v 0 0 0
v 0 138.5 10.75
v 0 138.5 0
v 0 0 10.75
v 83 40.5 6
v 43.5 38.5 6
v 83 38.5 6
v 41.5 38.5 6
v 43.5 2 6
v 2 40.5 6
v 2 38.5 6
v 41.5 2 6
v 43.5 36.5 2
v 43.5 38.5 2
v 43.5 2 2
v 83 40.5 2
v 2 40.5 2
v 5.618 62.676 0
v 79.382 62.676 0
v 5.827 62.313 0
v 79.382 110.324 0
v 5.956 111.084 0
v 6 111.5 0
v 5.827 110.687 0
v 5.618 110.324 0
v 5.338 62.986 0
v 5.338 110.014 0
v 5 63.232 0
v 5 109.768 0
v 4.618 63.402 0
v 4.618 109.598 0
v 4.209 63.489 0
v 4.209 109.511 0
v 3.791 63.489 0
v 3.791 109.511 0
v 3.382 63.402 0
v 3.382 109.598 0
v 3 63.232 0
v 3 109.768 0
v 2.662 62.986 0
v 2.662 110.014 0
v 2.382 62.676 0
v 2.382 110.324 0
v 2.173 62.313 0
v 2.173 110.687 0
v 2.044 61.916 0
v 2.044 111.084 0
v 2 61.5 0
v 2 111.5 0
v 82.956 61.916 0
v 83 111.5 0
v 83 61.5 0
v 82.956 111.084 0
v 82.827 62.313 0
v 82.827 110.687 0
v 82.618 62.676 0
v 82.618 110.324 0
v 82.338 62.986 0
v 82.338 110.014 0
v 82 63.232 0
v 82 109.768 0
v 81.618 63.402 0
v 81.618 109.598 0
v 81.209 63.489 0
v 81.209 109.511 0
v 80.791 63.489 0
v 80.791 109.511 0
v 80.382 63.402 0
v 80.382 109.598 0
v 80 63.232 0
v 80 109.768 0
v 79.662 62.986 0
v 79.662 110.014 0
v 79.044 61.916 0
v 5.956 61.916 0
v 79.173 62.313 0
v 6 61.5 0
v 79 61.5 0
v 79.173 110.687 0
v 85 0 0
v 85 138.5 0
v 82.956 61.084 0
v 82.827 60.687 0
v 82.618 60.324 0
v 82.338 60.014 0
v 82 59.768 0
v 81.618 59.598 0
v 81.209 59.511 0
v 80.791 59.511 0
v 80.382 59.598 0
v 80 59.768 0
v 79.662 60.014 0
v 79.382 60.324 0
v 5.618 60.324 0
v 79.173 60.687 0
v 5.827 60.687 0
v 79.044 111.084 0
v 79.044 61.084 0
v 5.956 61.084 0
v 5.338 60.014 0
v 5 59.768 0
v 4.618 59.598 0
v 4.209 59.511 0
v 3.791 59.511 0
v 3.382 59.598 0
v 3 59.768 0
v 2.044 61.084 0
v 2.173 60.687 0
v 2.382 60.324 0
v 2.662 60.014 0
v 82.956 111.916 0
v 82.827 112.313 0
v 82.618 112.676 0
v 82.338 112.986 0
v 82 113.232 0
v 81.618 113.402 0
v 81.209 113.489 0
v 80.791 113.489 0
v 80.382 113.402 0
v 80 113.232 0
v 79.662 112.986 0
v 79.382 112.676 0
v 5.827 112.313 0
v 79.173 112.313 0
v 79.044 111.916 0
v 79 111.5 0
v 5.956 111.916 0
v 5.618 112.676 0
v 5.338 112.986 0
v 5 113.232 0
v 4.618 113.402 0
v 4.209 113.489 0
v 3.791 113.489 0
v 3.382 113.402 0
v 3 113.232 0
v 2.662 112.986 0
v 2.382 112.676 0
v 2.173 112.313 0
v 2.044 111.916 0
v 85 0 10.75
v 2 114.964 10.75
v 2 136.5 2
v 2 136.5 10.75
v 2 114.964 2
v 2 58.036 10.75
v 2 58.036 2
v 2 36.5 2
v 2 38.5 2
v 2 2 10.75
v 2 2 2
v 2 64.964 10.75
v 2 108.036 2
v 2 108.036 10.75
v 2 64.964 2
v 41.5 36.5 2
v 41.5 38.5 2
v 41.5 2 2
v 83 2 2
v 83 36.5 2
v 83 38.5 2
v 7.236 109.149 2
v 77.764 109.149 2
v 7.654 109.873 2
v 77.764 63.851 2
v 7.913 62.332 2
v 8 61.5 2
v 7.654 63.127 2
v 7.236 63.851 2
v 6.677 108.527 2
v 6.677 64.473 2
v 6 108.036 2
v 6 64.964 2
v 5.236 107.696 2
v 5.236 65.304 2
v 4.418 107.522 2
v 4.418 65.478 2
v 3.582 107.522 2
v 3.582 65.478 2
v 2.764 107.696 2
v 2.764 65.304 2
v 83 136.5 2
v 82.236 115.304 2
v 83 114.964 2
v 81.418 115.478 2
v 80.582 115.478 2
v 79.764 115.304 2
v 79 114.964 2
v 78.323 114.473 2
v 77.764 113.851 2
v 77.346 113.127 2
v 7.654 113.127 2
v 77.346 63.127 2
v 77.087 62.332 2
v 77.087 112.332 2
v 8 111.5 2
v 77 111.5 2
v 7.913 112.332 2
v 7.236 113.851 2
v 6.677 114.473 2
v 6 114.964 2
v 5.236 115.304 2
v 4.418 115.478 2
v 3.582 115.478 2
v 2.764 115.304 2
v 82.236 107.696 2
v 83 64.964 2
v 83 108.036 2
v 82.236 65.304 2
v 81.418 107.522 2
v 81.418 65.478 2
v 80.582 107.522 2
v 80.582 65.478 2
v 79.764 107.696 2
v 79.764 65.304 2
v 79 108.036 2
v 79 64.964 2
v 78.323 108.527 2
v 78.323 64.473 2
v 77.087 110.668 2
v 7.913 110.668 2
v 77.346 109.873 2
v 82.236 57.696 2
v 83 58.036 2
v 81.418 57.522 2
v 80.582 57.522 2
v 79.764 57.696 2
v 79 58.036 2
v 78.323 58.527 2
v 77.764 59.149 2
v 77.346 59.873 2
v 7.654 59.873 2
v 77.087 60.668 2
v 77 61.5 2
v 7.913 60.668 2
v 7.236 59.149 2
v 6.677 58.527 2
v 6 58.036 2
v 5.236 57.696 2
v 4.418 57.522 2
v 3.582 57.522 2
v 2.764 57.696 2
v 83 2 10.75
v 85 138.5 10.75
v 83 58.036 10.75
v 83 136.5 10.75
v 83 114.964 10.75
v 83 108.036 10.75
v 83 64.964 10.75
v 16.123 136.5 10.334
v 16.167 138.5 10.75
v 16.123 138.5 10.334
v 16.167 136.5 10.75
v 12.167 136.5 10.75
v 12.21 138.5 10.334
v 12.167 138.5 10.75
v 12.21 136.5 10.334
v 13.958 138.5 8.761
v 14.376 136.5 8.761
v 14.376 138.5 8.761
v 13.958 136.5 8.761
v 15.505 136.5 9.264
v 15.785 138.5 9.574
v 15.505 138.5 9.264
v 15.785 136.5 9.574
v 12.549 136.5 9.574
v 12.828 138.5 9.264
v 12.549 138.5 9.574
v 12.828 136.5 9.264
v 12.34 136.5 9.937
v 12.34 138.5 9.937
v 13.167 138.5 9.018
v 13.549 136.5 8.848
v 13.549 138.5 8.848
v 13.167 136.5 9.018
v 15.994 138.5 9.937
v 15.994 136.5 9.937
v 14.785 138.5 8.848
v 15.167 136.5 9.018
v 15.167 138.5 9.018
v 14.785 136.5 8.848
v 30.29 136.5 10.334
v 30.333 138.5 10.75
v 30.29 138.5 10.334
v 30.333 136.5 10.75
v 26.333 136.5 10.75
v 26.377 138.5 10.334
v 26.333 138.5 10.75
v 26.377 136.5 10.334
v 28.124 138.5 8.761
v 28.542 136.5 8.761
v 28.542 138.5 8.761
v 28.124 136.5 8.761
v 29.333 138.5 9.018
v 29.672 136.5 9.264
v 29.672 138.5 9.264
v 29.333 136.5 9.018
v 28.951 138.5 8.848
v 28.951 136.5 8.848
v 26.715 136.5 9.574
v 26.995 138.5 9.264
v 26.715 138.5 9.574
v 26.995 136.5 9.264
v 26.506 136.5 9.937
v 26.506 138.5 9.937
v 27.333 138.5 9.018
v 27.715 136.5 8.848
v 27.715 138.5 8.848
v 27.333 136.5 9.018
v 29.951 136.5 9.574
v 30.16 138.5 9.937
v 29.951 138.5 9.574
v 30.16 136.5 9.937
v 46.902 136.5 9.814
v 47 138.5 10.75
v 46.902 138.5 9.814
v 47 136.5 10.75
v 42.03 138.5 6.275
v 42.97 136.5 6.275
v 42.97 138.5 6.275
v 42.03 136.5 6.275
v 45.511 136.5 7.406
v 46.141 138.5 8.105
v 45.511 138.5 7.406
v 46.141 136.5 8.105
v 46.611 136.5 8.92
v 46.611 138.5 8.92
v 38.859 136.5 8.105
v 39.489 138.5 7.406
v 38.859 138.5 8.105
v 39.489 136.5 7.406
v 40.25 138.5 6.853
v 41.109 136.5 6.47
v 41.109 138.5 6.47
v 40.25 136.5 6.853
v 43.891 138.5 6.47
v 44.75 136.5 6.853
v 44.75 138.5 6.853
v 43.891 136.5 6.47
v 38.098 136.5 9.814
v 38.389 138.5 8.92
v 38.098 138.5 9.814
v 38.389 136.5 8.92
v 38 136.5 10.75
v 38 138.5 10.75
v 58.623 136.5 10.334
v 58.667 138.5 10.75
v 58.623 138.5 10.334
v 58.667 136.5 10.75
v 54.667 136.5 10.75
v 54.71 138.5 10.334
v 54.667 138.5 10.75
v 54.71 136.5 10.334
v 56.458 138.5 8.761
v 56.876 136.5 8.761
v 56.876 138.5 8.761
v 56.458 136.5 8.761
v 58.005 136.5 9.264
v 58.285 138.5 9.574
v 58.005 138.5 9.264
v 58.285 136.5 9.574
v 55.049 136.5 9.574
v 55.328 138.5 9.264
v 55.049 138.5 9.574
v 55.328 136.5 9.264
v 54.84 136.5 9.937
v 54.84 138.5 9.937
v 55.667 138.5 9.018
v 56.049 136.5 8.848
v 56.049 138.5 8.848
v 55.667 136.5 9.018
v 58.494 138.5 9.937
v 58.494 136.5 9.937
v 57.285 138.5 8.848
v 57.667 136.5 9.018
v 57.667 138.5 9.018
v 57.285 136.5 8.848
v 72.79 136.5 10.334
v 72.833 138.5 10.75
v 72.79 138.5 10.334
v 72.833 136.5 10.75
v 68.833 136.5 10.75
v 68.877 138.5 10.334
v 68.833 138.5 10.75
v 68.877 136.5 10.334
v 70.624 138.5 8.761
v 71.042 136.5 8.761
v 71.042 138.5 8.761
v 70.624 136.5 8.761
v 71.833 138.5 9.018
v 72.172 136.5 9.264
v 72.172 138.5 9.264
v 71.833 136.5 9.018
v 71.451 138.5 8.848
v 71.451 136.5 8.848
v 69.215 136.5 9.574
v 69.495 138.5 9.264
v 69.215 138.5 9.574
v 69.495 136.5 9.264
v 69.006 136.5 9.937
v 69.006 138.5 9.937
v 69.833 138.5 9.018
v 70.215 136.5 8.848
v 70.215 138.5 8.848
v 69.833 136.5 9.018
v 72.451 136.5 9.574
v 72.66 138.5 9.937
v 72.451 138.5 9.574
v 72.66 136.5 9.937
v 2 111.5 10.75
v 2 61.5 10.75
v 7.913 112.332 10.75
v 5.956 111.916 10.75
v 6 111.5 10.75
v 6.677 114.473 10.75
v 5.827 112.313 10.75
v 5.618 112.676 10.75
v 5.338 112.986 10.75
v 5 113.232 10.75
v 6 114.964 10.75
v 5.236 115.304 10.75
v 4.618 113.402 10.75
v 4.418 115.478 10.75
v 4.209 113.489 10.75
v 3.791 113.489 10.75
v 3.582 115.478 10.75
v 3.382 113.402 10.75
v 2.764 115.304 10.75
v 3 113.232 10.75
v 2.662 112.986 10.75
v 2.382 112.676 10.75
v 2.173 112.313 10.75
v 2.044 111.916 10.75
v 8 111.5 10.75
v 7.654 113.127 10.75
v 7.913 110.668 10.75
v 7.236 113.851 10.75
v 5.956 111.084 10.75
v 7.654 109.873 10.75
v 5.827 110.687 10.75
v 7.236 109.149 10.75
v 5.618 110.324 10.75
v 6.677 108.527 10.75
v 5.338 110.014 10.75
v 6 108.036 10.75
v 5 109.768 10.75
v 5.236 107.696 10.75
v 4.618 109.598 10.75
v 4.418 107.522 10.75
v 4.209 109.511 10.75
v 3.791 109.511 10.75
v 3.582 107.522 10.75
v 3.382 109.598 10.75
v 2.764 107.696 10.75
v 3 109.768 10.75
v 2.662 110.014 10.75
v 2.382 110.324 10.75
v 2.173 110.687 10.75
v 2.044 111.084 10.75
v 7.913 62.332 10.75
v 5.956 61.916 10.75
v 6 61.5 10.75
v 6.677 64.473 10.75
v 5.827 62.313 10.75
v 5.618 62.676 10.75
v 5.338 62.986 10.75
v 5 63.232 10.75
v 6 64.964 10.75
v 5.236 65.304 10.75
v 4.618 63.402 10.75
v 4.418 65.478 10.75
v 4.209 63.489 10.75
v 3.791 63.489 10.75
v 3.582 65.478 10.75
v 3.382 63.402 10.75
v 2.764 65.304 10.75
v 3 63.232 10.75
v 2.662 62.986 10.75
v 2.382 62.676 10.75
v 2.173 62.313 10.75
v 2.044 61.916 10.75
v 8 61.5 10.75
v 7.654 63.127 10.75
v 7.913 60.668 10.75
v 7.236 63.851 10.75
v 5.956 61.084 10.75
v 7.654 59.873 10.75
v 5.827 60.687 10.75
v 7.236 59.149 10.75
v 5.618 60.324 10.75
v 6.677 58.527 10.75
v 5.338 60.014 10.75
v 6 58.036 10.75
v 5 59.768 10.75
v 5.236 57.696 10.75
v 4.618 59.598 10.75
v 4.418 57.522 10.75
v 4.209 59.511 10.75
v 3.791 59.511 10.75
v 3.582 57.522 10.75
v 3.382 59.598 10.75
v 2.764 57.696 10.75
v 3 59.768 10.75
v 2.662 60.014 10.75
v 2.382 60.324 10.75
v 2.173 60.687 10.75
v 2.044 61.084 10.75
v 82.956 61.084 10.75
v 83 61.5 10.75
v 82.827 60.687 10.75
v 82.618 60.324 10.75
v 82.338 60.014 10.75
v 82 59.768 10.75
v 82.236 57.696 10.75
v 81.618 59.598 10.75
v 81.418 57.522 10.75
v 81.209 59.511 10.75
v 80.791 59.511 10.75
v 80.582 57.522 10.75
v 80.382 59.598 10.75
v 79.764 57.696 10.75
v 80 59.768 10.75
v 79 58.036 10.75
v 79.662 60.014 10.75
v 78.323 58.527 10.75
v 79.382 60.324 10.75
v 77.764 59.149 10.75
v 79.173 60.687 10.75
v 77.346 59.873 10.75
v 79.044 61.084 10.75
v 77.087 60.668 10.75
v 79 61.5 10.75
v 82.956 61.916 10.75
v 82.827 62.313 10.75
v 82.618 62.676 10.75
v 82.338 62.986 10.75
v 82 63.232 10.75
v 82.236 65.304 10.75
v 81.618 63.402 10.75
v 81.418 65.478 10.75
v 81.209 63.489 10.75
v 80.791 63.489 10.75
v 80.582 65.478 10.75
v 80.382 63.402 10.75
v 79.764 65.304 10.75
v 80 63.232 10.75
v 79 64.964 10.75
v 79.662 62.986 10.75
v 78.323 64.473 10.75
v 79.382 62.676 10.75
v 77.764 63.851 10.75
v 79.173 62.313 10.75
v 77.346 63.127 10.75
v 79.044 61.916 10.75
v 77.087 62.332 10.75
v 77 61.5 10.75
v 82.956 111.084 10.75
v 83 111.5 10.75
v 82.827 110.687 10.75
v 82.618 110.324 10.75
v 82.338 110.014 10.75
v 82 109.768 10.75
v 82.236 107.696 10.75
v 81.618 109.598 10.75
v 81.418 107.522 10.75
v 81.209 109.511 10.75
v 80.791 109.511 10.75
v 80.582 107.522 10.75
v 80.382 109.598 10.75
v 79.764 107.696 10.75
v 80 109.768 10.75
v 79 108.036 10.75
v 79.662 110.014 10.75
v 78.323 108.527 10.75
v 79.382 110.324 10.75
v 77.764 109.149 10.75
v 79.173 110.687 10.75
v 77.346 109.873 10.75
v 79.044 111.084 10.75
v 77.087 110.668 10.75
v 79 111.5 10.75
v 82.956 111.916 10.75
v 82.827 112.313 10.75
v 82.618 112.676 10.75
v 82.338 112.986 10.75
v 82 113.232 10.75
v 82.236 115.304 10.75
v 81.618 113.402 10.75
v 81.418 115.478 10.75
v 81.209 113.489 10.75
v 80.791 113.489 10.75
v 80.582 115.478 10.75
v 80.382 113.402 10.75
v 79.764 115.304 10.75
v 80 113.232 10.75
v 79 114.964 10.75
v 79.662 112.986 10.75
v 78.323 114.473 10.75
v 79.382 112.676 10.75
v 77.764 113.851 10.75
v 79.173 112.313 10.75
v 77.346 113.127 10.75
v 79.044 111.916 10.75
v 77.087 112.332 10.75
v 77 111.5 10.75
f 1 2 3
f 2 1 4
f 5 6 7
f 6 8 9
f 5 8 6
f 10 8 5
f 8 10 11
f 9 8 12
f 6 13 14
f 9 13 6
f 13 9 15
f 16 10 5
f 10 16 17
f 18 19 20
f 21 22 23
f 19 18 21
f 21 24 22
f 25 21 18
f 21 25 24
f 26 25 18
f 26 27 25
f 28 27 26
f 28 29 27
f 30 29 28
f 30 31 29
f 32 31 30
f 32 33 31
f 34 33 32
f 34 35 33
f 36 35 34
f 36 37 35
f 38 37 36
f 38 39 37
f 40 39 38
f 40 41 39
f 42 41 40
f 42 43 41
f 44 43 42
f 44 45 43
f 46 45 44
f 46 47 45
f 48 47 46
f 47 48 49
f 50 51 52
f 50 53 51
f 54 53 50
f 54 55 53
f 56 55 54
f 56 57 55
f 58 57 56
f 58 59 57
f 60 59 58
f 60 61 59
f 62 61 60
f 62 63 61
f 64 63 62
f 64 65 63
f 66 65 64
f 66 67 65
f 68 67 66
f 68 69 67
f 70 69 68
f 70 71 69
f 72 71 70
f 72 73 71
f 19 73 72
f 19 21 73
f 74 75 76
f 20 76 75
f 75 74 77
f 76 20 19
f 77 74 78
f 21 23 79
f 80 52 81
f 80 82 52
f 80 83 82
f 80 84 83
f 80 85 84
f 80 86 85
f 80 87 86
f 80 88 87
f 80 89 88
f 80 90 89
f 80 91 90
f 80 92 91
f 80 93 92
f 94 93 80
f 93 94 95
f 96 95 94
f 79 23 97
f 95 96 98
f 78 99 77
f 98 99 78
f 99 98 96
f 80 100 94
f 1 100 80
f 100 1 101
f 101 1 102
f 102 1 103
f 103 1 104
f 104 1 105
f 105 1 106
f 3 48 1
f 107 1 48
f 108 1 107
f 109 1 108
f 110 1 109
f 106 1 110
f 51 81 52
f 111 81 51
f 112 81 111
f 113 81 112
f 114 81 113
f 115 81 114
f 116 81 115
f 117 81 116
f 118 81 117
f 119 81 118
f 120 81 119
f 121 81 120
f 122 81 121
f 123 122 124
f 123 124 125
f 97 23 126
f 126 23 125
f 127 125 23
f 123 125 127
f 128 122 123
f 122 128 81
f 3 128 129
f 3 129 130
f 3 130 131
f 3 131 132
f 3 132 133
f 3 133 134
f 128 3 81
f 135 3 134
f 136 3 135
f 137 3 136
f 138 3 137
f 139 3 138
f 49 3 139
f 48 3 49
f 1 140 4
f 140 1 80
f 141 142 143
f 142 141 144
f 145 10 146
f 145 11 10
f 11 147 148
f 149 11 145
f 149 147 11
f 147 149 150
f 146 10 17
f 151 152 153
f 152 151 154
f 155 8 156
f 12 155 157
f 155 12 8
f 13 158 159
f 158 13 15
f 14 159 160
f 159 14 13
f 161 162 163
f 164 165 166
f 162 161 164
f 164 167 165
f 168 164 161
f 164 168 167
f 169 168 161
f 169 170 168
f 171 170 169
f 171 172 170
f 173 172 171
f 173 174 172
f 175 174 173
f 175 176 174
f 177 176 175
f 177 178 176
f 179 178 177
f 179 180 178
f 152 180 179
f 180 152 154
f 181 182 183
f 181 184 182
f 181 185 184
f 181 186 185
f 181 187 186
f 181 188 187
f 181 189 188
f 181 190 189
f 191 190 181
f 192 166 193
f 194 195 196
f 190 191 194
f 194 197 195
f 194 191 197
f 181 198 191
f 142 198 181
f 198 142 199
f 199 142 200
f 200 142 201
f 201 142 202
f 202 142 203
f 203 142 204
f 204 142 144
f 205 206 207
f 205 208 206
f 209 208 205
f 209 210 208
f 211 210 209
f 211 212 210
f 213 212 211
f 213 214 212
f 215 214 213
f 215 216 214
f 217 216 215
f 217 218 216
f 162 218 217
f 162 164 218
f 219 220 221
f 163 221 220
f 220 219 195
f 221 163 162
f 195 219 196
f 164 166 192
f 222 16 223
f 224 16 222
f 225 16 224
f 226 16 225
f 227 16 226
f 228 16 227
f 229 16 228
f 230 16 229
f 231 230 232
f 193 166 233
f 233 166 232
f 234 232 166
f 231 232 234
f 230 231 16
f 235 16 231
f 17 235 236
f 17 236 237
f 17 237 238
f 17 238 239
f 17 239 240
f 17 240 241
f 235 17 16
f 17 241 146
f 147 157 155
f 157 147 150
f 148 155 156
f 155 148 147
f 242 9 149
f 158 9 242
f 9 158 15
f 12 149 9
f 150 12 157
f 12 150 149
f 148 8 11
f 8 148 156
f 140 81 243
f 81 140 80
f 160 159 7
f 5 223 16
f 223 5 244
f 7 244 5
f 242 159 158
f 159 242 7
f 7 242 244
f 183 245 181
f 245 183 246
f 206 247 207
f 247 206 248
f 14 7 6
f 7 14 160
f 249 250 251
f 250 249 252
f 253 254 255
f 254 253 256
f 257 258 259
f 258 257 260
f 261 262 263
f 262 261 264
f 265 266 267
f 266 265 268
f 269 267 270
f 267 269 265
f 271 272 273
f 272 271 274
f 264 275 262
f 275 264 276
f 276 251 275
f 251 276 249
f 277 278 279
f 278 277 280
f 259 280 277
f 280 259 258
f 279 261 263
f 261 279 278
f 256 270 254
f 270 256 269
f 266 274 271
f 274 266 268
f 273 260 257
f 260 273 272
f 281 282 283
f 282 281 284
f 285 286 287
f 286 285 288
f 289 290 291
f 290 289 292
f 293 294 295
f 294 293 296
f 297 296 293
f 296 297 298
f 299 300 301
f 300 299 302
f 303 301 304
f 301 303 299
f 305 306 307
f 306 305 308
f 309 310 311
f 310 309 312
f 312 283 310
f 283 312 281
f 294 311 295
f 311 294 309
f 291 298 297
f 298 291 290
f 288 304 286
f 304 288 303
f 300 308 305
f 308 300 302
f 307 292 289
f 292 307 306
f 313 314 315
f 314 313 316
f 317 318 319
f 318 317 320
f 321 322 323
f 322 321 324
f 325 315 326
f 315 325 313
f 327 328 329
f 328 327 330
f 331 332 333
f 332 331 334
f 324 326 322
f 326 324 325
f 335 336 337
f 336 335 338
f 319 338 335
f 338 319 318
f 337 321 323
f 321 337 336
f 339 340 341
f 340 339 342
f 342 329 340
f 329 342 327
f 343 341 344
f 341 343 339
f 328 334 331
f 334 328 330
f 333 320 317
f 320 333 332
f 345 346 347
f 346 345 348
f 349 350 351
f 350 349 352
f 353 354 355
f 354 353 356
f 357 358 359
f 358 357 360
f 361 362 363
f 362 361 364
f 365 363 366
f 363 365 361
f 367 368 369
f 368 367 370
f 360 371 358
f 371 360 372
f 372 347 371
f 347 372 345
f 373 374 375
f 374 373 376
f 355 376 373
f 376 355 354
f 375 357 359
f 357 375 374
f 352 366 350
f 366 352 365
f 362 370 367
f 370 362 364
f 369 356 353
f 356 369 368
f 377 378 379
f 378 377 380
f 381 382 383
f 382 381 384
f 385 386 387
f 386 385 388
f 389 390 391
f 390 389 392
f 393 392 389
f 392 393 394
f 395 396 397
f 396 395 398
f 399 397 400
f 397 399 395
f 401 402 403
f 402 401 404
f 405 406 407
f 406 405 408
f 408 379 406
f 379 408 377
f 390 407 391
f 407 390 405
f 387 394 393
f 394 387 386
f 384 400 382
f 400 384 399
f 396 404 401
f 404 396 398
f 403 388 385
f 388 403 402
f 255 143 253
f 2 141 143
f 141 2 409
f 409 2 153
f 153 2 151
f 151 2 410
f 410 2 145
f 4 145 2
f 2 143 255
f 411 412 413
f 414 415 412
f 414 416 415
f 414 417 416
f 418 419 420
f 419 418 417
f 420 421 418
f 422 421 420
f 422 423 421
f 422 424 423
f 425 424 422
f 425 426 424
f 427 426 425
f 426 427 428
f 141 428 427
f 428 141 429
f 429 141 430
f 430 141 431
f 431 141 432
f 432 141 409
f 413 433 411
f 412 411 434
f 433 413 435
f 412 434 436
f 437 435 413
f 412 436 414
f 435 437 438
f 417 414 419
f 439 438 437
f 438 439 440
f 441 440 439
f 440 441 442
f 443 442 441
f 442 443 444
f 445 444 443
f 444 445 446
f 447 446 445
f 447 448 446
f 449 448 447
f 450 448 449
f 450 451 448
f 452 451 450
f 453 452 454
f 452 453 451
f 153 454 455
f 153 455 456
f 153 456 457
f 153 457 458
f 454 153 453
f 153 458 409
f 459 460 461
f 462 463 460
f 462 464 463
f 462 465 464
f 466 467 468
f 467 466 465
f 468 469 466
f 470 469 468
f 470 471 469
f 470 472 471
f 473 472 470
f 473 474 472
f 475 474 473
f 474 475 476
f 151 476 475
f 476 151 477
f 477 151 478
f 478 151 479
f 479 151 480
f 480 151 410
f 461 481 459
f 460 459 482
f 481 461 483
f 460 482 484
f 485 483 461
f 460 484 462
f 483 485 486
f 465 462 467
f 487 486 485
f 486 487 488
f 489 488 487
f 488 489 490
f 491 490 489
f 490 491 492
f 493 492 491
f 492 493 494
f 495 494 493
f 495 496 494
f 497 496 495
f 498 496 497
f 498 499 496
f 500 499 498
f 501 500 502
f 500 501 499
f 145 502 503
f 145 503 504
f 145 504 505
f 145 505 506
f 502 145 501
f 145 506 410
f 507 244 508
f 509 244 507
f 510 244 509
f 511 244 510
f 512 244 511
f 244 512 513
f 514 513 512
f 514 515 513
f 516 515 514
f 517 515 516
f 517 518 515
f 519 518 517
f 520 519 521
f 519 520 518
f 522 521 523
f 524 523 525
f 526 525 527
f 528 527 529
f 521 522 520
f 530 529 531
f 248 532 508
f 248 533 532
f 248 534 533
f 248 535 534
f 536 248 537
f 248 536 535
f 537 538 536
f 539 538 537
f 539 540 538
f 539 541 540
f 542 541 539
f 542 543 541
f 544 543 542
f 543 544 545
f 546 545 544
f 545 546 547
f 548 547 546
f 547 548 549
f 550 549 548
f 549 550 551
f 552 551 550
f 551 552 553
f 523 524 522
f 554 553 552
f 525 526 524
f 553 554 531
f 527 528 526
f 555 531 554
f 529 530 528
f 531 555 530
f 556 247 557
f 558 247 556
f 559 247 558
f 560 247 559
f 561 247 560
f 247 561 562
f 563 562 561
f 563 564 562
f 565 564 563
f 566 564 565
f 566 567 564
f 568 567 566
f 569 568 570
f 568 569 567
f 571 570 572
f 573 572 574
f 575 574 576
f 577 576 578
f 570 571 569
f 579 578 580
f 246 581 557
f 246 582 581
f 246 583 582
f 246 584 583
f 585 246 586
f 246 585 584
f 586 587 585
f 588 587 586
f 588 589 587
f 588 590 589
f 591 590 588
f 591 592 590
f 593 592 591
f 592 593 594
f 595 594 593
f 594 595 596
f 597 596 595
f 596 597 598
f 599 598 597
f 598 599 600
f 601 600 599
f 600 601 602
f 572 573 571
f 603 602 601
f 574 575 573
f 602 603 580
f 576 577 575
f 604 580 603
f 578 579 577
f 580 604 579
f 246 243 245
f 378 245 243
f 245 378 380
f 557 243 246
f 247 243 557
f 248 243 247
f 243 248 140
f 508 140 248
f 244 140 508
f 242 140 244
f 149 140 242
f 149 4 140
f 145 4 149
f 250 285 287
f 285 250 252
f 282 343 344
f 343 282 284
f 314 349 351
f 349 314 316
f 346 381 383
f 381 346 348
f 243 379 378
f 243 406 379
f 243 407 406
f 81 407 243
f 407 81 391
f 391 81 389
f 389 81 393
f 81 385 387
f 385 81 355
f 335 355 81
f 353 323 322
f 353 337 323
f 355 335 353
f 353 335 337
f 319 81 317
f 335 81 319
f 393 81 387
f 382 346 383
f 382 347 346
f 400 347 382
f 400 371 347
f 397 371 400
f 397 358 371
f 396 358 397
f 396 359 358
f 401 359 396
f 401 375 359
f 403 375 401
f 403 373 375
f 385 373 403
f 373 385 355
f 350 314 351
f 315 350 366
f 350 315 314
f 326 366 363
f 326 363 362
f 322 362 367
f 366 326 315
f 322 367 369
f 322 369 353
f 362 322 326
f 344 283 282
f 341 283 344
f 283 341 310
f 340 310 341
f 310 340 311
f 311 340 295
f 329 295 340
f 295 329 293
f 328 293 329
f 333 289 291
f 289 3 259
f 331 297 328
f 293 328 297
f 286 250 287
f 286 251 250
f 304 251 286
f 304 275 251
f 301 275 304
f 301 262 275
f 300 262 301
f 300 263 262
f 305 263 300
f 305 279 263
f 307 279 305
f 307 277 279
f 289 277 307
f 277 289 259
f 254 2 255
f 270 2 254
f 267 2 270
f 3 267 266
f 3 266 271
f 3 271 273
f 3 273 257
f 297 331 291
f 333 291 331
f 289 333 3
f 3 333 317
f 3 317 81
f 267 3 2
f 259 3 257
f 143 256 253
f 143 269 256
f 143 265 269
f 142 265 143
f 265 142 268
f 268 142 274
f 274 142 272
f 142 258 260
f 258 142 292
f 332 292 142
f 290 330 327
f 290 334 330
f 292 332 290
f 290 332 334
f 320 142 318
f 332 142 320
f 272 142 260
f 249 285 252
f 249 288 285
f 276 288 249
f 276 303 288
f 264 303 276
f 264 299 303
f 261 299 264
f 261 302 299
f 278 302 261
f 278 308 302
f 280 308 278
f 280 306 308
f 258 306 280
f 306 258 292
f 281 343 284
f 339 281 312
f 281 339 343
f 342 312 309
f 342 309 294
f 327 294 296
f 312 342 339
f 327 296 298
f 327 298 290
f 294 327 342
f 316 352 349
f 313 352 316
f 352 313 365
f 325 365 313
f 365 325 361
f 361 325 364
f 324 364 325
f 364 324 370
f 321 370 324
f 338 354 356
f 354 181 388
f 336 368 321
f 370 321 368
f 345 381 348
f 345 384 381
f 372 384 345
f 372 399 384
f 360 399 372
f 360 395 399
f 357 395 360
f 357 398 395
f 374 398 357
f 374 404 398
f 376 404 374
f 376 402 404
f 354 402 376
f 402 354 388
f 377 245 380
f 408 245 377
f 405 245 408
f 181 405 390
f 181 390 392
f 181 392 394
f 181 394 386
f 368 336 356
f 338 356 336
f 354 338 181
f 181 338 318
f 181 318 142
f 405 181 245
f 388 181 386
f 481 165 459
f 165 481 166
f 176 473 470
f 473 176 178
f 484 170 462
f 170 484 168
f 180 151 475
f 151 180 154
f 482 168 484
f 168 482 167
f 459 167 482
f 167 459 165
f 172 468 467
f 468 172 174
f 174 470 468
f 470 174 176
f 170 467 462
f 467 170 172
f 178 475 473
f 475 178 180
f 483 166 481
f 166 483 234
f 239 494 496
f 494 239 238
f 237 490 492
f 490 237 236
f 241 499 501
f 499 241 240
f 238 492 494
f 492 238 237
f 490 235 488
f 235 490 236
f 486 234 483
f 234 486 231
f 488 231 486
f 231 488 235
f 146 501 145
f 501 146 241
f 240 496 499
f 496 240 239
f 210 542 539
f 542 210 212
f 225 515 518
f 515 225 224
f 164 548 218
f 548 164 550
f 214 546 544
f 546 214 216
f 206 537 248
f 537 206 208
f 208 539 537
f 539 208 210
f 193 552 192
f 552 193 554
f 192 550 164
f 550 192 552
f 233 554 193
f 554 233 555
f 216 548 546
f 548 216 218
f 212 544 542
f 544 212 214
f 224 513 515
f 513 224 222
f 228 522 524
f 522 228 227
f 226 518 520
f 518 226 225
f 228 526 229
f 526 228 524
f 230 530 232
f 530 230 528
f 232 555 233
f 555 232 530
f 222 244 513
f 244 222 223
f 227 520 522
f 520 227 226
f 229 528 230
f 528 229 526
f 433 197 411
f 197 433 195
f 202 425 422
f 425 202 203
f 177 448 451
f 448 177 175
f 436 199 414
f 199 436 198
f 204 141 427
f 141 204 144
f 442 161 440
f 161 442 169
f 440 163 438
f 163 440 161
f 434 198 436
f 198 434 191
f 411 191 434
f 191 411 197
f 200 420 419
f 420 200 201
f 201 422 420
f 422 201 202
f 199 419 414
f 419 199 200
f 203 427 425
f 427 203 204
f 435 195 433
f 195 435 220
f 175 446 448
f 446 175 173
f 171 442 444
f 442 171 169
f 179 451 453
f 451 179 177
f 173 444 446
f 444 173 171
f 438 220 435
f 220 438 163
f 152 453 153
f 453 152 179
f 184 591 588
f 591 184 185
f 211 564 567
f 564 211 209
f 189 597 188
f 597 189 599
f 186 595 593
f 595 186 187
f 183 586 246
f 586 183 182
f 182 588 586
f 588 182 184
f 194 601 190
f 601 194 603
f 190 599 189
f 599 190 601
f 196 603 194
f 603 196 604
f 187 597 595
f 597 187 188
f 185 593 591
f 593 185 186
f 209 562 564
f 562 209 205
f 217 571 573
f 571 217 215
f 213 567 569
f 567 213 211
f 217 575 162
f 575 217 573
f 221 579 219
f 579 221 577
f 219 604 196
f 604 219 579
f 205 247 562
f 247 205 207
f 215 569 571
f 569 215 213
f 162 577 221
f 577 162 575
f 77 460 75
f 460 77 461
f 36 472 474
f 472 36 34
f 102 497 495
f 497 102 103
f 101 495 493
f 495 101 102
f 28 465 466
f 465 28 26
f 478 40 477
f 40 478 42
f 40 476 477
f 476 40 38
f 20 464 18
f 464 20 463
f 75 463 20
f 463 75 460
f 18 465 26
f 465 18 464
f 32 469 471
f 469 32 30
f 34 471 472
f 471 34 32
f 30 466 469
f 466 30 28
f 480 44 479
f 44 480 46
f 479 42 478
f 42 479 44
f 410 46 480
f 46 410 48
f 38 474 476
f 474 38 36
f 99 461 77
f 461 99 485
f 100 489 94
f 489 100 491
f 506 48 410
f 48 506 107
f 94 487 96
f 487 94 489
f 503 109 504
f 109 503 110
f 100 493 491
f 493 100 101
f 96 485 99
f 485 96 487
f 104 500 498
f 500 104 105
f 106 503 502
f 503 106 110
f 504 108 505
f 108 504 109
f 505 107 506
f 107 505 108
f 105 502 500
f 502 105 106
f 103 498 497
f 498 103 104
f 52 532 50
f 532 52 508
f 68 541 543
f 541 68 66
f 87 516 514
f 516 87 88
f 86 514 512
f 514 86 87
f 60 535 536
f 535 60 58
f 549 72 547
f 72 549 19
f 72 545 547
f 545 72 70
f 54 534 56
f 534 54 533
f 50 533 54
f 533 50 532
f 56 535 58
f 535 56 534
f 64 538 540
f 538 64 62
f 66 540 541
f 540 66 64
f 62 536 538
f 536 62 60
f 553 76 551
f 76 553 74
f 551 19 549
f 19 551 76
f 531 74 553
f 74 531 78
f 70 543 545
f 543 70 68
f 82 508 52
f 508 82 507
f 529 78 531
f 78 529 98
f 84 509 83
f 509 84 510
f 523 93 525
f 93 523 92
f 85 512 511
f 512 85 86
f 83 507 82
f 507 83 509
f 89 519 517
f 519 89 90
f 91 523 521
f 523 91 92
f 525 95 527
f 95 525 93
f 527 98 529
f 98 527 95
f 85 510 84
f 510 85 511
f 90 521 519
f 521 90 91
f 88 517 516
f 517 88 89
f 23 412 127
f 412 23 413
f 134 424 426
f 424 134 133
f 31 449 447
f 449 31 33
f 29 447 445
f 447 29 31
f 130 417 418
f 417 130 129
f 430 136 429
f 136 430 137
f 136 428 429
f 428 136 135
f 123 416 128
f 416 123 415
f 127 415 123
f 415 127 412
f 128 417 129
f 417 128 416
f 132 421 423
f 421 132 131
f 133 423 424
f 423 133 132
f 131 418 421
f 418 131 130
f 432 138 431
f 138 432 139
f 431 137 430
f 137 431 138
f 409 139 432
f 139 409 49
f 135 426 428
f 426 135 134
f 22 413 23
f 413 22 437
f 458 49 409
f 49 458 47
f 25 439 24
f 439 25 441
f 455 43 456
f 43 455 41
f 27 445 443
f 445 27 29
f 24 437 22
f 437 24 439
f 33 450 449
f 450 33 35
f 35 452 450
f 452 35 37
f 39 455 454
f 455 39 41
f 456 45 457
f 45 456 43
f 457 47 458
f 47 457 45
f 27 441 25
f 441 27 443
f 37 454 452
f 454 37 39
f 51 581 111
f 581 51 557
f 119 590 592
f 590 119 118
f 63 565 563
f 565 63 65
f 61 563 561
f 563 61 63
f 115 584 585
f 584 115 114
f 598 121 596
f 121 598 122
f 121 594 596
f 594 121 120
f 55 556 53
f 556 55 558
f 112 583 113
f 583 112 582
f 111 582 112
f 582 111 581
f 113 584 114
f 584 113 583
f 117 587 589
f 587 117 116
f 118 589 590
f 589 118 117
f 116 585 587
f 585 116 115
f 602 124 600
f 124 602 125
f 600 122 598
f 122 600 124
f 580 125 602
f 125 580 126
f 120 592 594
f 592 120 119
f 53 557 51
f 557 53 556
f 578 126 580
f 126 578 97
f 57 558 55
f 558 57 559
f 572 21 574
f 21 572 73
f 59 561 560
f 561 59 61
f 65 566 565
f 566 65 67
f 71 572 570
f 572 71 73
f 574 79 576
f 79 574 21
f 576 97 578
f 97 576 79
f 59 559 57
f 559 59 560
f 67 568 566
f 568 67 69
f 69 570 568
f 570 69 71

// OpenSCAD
// Top piece for Shelly EM housing
// This version has NO ventilation/access holes for safety reasons:
// - Prevents conductive materials from falling onto electrical contacts
// - Provides protection against dust and debris
// - Creates a safer enclosure for mains voltage monitoring equipment
// Must be paired with shelly-housing-bottom.scad for complete assembly

// 0.5mm added to each dimension for clearance
// Shelly EM dimensions
sx = 39.5;
sy = 36.5;
sz = 17.5;

// Cutout dimensions
sc = 6;

// Wall width and lip height
ww = 2;
lh = 4;

$fn=30;

// Delta for subtraction
d = 0.1;

// Size of space for wires
wiredepth = 100;

module shelly() {
    difference() {
        cube([sx+ww*2, sy+ww*2, ww+lh]);
        translate([ww, ww, ww]) {
            cube([sx, sy, lh+d]);
        }
        // Remove the bottom cutout by removing this section
        // translate([ww+sc, ww+sc, -d]) {
        //     cube([sx-sc*2, sy-sc*2, ww+d*2]);
        // }
    }
}

module box() {
    shelly();
    translate([sx+ww, 0, 0]) {
        shelly();
    }
    // Left side
    cube([ww, sy+wiredepth, ww+sz/2]);
    // Bottom side
    cube([sx*2+ww*3, ww, ww+sz/2]);
    // Right side
    translate([(ww+sx)*2, 0, 0]) {
        cube([ww, sy+wiredepth, ww+sz/2]);
    }
    // Bottom fill
    translate([0, sy, 0]) {
        cube([sx*2+ww*3, wiredepth, ww]);
    }
    // Top side with holes
    translate([0, sy+wiredepth, 0]) {
        difference() {
            cube([sx*2+ww*3, ww, ww+sz/2]);
            // 9mm hole in middle
            // 4mm holes evenly spaced to left and right of middle
            for (hole=[1:5]) {
                diam = hole == 3 ? 9 : 4;
                translate([(sx*2+ww*3)*hole/6, -d, ww+sz/2]) {
                    rotate([270, 0, 0]) {
                        cylinder(h=ww+2*d, d=diam);
                    }
                }            
            }
        }
    }
}

difference() {
    union() {
        box();
        // Screw holes outside
        translate([2+ww, sy+25, 0]) {
            cylinder(h=ww+sz/2, d=4+ww*2);
        }
        translate([(ww+sx)*2-ww, sy+25, 0]) {
            cylinder(h=ww+sz/2, d=4+ww*2);
        }
        translate([2+ww, sy+wiredepth-25, 0]) {
            cylinder(h=ww+sz/2, d=4+ww*2);
        }
        translate([(ww+sx)*2-ww, sy+wiredepth-25, 0]) {
            cylinder(h=ww+sz/2, d=4+ww*2);
        }
    }
    // Screw holes
    translate([2+ww, sy+25, -d]) {
        cylinder(h=ww+sz/2+2*d, d=4);
    }
    translate([(ww+sx)*2-ww, sy+25, -d]) {
        cylinder(h=ww+sz/2+2*d, d=4);
    }
    translate([2+ww, sy+wiredepth-25, -d]) {
        cylinder(h=ww+sz/2+2*d, d=4);
    }
    translate([(ww+sx)*2-ww, sy+wiredepth-25, -d]) {
        cylinder(h=ww+sz/2+2*d, d=4);
    }
}
